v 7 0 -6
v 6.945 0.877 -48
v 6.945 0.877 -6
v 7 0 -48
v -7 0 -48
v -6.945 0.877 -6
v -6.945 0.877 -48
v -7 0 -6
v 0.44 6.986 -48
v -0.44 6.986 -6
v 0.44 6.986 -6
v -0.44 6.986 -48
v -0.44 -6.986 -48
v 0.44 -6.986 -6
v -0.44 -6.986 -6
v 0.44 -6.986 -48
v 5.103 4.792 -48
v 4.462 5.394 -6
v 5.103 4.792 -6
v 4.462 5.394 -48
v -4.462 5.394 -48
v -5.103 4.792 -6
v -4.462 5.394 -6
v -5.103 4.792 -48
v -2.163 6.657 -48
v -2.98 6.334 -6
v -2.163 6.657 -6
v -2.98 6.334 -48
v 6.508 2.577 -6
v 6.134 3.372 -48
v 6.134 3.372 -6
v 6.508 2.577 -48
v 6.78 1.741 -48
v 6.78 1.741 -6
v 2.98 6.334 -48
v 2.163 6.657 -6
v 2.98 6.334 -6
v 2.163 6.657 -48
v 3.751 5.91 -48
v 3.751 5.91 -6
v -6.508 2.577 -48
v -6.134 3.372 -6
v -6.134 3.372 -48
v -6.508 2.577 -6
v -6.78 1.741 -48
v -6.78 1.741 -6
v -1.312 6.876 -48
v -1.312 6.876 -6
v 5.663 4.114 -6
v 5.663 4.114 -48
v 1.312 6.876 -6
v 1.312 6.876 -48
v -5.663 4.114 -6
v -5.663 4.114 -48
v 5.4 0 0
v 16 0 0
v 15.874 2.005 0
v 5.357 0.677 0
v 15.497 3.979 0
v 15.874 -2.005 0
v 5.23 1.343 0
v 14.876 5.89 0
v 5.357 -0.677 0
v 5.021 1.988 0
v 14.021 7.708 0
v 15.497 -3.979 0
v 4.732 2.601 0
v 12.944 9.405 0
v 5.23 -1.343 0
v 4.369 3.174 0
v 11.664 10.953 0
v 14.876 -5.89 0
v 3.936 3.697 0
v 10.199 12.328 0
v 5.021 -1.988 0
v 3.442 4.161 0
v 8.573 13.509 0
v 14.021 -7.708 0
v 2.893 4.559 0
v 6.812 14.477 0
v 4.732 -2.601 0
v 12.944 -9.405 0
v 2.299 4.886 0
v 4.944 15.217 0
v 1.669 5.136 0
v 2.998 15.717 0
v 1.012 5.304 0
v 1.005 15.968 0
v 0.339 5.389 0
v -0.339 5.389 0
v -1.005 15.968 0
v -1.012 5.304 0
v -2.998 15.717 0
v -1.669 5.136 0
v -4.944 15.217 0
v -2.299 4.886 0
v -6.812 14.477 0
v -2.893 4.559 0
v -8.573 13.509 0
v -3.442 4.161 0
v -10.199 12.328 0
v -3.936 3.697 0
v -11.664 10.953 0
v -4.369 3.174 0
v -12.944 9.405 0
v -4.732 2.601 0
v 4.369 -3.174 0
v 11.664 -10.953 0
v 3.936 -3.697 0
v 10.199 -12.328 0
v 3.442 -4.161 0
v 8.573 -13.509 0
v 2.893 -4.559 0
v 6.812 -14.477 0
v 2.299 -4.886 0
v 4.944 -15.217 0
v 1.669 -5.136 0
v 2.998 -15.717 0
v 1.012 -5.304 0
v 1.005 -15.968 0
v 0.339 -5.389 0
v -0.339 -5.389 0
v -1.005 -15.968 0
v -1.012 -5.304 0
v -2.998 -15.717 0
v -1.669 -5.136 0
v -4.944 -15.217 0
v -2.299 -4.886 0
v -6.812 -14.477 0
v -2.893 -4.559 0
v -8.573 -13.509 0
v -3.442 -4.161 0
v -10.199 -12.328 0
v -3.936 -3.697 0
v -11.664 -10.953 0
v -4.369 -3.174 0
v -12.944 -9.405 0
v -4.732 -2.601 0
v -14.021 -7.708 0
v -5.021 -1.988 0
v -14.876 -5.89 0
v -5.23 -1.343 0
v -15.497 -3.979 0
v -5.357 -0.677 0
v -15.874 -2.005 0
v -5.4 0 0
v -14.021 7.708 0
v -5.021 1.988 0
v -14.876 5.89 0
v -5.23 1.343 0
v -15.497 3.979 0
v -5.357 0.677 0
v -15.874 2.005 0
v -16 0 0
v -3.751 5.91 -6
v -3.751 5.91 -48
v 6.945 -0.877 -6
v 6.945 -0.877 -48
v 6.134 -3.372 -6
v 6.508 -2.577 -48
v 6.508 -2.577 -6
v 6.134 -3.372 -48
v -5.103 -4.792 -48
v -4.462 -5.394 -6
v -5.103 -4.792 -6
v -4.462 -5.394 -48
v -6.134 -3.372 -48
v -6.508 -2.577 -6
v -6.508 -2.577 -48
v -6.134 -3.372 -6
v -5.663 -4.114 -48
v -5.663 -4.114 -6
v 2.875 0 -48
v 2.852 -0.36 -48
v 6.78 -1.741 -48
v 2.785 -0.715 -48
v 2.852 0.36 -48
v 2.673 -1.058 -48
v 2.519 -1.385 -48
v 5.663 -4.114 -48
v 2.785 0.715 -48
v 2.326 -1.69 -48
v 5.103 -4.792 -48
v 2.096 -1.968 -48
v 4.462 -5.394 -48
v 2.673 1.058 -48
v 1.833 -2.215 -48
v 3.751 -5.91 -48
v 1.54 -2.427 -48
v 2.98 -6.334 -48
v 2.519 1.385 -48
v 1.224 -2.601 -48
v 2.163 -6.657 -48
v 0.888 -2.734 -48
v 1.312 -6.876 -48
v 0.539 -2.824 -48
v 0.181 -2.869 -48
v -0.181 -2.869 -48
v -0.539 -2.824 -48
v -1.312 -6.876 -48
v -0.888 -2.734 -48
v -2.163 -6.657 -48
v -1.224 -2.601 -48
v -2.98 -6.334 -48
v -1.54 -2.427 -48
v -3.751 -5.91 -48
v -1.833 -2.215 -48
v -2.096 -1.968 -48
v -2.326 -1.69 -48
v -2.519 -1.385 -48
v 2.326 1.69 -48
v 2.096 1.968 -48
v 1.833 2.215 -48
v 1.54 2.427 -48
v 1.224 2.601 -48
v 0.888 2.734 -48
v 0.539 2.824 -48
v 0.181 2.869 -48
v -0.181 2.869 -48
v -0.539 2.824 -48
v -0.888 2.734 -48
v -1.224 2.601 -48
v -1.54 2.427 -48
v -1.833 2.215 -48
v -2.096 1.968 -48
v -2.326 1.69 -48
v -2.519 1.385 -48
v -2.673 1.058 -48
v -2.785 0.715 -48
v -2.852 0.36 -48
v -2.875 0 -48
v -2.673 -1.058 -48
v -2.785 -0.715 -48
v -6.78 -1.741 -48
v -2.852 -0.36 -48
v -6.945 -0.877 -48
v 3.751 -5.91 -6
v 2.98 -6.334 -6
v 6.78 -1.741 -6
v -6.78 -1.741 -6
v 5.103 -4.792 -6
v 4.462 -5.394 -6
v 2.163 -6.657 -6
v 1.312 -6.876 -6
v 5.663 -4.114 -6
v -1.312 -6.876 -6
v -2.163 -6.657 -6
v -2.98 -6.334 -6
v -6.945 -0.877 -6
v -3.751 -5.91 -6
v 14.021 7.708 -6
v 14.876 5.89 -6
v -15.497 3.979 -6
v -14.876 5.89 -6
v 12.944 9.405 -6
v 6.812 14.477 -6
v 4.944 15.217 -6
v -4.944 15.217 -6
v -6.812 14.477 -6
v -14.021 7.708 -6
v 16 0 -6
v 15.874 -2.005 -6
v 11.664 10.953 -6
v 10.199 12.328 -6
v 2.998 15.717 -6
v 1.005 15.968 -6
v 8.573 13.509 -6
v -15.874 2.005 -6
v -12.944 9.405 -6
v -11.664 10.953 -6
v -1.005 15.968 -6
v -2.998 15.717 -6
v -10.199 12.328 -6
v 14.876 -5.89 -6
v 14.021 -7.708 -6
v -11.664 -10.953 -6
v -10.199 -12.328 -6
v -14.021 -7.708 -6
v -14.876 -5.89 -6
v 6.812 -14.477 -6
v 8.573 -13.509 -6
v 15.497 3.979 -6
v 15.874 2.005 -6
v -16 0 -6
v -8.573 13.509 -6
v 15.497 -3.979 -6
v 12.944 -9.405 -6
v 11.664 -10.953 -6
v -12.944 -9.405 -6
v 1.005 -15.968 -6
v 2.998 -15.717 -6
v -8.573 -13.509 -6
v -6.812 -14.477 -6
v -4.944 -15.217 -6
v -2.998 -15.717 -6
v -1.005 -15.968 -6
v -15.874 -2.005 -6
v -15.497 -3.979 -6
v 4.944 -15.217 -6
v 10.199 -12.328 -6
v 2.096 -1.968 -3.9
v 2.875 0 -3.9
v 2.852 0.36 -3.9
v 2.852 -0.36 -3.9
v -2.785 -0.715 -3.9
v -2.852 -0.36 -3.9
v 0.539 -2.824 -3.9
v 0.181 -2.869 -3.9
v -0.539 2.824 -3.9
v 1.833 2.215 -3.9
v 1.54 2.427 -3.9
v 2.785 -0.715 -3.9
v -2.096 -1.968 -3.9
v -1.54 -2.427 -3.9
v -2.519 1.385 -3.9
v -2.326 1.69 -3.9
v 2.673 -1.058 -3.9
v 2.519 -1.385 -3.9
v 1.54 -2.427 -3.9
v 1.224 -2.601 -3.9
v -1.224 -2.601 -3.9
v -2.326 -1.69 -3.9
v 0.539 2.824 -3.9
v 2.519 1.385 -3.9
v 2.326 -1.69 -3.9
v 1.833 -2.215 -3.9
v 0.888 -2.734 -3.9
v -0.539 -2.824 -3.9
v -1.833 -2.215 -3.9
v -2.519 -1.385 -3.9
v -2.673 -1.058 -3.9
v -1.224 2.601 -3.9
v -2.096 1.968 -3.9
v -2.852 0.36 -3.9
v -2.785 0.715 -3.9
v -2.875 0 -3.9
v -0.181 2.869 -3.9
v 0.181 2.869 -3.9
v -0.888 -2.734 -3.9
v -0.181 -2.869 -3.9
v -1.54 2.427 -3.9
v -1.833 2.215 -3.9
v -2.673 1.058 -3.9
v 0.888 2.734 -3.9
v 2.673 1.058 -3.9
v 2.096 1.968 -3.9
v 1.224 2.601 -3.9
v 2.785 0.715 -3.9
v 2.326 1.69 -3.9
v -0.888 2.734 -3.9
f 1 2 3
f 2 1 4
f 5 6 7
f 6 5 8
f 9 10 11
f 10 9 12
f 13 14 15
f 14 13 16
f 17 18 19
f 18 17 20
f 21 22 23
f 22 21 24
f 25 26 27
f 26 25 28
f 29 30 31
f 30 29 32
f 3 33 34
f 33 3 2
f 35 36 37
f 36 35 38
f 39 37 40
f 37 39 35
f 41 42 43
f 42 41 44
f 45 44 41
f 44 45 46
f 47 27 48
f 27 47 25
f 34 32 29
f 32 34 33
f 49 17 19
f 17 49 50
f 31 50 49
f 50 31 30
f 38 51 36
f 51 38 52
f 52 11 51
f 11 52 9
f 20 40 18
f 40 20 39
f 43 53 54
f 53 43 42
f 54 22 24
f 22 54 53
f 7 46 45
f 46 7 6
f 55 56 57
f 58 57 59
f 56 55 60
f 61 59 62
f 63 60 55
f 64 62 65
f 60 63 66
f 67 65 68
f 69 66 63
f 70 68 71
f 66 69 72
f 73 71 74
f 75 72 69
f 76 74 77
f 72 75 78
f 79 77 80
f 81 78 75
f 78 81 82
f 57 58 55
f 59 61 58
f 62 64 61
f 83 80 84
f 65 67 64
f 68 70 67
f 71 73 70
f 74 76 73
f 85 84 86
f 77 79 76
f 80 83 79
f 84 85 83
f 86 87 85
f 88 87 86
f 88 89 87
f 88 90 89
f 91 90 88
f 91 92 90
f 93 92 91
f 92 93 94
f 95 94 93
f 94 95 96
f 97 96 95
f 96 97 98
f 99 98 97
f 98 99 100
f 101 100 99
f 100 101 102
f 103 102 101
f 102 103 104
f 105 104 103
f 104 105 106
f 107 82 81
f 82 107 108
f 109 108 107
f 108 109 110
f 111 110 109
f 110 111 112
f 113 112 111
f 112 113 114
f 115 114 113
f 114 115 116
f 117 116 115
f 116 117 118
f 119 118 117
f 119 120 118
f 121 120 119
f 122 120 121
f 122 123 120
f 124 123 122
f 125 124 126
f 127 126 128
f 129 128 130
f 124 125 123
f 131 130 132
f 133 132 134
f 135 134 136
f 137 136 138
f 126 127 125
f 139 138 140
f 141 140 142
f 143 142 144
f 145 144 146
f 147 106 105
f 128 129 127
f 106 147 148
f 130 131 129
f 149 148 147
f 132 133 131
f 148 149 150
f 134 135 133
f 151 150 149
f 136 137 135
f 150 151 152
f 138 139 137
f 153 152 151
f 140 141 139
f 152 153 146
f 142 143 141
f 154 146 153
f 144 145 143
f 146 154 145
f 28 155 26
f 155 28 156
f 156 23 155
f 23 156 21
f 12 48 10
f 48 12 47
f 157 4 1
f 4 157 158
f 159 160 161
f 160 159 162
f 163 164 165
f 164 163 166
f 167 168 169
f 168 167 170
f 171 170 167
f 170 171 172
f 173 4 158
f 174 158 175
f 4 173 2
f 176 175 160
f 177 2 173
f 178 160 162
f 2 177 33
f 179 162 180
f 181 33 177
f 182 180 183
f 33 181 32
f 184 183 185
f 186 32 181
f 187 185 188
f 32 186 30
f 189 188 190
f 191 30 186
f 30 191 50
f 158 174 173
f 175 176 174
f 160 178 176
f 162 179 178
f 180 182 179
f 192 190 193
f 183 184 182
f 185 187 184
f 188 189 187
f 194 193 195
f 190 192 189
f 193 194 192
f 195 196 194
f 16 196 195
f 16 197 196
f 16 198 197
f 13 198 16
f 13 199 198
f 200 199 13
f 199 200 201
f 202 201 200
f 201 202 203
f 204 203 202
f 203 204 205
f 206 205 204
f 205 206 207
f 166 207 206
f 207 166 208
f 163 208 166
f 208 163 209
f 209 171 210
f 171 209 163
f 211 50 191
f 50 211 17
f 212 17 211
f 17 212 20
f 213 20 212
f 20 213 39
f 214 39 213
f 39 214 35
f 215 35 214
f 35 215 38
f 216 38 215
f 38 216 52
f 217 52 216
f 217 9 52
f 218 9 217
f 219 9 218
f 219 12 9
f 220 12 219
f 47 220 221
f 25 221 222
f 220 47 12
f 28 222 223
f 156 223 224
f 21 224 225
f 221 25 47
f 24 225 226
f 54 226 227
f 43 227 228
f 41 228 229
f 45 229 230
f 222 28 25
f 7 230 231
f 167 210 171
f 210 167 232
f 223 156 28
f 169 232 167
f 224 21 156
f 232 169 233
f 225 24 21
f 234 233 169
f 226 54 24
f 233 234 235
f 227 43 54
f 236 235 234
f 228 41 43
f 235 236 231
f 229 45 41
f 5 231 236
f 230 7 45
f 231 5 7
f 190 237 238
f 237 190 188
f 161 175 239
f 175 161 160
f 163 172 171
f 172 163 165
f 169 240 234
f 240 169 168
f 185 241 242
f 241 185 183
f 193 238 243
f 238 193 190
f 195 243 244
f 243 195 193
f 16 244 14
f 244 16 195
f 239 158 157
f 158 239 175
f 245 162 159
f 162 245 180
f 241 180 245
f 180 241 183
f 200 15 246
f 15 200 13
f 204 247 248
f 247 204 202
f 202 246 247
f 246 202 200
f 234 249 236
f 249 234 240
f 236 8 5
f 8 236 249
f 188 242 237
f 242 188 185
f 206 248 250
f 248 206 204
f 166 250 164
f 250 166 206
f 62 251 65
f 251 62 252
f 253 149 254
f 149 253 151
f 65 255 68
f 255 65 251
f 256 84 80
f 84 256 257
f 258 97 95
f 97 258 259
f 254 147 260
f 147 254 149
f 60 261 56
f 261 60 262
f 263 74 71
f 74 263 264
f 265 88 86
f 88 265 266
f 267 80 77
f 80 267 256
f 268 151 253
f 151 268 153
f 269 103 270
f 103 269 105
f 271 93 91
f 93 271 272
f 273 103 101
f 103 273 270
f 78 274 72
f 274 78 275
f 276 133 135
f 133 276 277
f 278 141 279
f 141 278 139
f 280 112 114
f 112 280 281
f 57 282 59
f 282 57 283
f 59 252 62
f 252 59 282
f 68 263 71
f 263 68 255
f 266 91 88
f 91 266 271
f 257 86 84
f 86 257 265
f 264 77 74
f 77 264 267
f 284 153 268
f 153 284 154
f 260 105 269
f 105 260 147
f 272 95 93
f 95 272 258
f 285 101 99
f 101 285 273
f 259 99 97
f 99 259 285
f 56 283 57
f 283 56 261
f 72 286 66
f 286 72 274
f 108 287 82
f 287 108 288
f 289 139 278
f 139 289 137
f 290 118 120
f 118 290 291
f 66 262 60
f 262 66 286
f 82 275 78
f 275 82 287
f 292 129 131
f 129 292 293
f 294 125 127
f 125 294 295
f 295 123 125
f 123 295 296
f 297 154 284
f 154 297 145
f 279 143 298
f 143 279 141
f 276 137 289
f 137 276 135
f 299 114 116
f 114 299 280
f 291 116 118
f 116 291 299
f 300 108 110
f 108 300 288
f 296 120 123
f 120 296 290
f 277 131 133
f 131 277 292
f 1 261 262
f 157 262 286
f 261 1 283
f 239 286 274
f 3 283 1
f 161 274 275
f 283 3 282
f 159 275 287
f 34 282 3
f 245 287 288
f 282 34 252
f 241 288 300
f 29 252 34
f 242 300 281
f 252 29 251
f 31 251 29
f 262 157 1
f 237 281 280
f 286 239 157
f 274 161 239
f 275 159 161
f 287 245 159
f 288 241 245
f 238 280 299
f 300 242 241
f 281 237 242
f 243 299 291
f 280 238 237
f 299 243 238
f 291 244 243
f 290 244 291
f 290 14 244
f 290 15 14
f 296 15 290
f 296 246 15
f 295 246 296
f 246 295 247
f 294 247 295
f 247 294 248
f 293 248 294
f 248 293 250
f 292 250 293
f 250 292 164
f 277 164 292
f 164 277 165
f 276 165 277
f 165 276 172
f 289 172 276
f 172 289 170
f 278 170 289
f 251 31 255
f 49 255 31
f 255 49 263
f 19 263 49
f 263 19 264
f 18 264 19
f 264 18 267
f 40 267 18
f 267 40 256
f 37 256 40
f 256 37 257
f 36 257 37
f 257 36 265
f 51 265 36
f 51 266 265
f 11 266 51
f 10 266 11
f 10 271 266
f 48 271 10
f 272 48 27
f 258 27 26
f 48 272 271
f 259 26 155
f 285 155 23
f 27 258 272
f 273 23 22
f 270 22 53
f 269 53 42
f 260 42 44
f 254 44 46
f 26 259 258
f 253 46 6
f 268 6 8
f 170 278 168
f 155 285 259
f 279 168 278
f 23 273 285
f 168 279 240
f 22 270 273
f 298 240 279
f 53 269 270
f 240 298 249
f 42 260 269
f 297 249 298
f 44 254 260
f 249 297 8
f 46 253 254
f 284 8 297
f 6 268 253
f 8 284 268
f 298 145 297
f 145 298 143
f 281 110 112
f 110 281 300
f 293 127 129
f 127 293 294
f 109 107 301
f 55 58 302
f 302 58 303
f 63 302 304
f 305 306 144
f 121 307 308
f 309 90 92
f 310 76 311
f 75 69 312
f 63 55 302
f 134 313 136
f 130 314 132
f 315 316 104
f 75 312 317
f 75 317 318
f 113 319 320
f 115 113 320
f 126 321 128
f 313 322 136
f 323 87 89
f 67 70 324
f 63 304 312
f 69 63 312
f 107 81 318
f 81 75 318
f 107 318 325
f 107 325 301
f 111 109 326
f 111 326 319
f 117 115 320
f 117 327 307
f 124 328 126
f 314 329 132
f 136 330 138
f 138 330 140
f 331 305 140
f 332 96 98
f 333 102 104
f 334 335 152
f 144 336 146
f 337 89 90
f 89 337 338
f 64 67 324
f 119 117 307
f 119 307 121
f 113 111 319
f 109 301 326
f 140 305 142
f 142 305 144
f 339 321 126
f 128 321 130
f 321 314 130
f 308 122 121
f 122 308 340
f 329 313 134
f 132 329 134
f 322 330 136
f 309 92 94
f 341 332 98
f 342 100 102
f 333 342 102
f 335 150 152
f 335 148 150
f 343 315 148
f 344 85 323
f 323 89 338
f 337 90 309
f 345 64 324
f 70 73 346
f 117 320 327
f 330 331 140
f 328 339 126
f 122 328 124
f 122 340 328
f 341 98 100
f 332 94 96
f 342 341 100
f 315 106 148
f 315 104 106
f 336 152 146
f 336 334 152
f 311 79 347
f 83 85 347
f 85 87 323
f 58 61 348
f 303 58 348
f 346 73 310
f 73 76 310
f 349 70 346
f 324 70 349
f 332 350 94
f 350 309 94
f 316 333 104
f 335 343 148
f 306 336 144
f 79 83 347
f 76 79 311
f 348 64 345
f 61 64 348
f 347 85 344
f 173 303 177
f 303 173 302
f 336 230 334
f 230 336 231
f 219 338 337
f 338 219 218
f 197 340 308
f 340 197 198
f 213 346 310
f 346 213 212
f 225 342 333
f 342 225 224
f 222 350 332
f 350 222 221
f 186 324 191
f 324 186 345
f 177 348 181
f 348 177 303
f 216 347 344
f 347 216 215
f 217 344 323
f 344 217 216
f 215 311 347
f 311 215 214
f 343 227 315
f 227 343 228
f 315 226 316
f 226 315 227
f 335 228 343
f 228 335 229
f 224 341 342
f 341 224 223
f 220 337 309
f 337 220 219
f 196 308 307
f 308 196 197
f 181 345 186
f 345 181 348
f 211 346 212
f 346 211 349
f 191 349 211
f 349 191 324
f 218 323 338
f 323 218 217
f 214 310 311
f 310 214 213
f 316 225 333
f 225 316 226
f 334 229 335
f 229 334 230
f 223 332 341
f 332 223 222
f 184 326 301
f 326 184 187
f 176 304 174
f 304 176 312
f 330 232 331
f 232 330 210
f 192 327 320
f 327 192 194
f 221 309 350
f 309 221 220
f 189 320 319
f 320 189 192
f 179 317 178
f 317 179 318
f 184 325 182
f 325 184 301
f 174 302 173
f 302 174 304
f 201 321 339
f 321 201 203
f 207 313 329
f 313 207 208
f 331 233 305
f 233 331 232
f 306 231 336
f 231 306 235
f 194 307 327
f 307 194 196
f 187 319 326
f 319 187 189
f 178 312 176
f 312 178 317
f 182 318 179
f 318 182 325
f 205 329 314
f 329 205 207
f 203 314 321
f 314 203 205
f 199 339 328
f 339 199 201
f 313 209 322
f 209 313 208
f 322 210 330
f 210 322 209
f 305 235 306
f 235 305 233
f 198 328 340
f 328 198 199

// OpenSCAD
$fn = 50;


difference() {
	union() {
		translate(v = [0, 0, -48.0000000000]) {
			cylinder(h = 48, r = 7.0000000000);
		}
		translate(v = [0, 0, -6.0000000000]) {
			cylinder(h = 6, r = 16.0000000000);
		}
	}
	union() {
		translate(v = [0, 0, 0]) {
			rotate(a = [0, 0, 0]) {
				difference() {
					union() {
						#translate(v = [0, 0, -48.0000000000]) {
							cylinder(h = 48, r = 2.6000000000);
						}
						#translate(v = [0, 0, -3.9000000000]) {
							cylinder(h = 3.9000000000, r = 7.0000000000, r1 = 2.8750000000, r2 = 5.4000000000);
						}
						#translate(v = [0, 0, -48.0000000000]) {
							cylinder(h = 48, r = 2.8750000000);
						}
						#translate(v = [0, 0, -48.0000000000]) {
							cylinder(h = 48, r = 2.6000000000);
						}
					}
					union();
				}
			}
		}
	}
}
